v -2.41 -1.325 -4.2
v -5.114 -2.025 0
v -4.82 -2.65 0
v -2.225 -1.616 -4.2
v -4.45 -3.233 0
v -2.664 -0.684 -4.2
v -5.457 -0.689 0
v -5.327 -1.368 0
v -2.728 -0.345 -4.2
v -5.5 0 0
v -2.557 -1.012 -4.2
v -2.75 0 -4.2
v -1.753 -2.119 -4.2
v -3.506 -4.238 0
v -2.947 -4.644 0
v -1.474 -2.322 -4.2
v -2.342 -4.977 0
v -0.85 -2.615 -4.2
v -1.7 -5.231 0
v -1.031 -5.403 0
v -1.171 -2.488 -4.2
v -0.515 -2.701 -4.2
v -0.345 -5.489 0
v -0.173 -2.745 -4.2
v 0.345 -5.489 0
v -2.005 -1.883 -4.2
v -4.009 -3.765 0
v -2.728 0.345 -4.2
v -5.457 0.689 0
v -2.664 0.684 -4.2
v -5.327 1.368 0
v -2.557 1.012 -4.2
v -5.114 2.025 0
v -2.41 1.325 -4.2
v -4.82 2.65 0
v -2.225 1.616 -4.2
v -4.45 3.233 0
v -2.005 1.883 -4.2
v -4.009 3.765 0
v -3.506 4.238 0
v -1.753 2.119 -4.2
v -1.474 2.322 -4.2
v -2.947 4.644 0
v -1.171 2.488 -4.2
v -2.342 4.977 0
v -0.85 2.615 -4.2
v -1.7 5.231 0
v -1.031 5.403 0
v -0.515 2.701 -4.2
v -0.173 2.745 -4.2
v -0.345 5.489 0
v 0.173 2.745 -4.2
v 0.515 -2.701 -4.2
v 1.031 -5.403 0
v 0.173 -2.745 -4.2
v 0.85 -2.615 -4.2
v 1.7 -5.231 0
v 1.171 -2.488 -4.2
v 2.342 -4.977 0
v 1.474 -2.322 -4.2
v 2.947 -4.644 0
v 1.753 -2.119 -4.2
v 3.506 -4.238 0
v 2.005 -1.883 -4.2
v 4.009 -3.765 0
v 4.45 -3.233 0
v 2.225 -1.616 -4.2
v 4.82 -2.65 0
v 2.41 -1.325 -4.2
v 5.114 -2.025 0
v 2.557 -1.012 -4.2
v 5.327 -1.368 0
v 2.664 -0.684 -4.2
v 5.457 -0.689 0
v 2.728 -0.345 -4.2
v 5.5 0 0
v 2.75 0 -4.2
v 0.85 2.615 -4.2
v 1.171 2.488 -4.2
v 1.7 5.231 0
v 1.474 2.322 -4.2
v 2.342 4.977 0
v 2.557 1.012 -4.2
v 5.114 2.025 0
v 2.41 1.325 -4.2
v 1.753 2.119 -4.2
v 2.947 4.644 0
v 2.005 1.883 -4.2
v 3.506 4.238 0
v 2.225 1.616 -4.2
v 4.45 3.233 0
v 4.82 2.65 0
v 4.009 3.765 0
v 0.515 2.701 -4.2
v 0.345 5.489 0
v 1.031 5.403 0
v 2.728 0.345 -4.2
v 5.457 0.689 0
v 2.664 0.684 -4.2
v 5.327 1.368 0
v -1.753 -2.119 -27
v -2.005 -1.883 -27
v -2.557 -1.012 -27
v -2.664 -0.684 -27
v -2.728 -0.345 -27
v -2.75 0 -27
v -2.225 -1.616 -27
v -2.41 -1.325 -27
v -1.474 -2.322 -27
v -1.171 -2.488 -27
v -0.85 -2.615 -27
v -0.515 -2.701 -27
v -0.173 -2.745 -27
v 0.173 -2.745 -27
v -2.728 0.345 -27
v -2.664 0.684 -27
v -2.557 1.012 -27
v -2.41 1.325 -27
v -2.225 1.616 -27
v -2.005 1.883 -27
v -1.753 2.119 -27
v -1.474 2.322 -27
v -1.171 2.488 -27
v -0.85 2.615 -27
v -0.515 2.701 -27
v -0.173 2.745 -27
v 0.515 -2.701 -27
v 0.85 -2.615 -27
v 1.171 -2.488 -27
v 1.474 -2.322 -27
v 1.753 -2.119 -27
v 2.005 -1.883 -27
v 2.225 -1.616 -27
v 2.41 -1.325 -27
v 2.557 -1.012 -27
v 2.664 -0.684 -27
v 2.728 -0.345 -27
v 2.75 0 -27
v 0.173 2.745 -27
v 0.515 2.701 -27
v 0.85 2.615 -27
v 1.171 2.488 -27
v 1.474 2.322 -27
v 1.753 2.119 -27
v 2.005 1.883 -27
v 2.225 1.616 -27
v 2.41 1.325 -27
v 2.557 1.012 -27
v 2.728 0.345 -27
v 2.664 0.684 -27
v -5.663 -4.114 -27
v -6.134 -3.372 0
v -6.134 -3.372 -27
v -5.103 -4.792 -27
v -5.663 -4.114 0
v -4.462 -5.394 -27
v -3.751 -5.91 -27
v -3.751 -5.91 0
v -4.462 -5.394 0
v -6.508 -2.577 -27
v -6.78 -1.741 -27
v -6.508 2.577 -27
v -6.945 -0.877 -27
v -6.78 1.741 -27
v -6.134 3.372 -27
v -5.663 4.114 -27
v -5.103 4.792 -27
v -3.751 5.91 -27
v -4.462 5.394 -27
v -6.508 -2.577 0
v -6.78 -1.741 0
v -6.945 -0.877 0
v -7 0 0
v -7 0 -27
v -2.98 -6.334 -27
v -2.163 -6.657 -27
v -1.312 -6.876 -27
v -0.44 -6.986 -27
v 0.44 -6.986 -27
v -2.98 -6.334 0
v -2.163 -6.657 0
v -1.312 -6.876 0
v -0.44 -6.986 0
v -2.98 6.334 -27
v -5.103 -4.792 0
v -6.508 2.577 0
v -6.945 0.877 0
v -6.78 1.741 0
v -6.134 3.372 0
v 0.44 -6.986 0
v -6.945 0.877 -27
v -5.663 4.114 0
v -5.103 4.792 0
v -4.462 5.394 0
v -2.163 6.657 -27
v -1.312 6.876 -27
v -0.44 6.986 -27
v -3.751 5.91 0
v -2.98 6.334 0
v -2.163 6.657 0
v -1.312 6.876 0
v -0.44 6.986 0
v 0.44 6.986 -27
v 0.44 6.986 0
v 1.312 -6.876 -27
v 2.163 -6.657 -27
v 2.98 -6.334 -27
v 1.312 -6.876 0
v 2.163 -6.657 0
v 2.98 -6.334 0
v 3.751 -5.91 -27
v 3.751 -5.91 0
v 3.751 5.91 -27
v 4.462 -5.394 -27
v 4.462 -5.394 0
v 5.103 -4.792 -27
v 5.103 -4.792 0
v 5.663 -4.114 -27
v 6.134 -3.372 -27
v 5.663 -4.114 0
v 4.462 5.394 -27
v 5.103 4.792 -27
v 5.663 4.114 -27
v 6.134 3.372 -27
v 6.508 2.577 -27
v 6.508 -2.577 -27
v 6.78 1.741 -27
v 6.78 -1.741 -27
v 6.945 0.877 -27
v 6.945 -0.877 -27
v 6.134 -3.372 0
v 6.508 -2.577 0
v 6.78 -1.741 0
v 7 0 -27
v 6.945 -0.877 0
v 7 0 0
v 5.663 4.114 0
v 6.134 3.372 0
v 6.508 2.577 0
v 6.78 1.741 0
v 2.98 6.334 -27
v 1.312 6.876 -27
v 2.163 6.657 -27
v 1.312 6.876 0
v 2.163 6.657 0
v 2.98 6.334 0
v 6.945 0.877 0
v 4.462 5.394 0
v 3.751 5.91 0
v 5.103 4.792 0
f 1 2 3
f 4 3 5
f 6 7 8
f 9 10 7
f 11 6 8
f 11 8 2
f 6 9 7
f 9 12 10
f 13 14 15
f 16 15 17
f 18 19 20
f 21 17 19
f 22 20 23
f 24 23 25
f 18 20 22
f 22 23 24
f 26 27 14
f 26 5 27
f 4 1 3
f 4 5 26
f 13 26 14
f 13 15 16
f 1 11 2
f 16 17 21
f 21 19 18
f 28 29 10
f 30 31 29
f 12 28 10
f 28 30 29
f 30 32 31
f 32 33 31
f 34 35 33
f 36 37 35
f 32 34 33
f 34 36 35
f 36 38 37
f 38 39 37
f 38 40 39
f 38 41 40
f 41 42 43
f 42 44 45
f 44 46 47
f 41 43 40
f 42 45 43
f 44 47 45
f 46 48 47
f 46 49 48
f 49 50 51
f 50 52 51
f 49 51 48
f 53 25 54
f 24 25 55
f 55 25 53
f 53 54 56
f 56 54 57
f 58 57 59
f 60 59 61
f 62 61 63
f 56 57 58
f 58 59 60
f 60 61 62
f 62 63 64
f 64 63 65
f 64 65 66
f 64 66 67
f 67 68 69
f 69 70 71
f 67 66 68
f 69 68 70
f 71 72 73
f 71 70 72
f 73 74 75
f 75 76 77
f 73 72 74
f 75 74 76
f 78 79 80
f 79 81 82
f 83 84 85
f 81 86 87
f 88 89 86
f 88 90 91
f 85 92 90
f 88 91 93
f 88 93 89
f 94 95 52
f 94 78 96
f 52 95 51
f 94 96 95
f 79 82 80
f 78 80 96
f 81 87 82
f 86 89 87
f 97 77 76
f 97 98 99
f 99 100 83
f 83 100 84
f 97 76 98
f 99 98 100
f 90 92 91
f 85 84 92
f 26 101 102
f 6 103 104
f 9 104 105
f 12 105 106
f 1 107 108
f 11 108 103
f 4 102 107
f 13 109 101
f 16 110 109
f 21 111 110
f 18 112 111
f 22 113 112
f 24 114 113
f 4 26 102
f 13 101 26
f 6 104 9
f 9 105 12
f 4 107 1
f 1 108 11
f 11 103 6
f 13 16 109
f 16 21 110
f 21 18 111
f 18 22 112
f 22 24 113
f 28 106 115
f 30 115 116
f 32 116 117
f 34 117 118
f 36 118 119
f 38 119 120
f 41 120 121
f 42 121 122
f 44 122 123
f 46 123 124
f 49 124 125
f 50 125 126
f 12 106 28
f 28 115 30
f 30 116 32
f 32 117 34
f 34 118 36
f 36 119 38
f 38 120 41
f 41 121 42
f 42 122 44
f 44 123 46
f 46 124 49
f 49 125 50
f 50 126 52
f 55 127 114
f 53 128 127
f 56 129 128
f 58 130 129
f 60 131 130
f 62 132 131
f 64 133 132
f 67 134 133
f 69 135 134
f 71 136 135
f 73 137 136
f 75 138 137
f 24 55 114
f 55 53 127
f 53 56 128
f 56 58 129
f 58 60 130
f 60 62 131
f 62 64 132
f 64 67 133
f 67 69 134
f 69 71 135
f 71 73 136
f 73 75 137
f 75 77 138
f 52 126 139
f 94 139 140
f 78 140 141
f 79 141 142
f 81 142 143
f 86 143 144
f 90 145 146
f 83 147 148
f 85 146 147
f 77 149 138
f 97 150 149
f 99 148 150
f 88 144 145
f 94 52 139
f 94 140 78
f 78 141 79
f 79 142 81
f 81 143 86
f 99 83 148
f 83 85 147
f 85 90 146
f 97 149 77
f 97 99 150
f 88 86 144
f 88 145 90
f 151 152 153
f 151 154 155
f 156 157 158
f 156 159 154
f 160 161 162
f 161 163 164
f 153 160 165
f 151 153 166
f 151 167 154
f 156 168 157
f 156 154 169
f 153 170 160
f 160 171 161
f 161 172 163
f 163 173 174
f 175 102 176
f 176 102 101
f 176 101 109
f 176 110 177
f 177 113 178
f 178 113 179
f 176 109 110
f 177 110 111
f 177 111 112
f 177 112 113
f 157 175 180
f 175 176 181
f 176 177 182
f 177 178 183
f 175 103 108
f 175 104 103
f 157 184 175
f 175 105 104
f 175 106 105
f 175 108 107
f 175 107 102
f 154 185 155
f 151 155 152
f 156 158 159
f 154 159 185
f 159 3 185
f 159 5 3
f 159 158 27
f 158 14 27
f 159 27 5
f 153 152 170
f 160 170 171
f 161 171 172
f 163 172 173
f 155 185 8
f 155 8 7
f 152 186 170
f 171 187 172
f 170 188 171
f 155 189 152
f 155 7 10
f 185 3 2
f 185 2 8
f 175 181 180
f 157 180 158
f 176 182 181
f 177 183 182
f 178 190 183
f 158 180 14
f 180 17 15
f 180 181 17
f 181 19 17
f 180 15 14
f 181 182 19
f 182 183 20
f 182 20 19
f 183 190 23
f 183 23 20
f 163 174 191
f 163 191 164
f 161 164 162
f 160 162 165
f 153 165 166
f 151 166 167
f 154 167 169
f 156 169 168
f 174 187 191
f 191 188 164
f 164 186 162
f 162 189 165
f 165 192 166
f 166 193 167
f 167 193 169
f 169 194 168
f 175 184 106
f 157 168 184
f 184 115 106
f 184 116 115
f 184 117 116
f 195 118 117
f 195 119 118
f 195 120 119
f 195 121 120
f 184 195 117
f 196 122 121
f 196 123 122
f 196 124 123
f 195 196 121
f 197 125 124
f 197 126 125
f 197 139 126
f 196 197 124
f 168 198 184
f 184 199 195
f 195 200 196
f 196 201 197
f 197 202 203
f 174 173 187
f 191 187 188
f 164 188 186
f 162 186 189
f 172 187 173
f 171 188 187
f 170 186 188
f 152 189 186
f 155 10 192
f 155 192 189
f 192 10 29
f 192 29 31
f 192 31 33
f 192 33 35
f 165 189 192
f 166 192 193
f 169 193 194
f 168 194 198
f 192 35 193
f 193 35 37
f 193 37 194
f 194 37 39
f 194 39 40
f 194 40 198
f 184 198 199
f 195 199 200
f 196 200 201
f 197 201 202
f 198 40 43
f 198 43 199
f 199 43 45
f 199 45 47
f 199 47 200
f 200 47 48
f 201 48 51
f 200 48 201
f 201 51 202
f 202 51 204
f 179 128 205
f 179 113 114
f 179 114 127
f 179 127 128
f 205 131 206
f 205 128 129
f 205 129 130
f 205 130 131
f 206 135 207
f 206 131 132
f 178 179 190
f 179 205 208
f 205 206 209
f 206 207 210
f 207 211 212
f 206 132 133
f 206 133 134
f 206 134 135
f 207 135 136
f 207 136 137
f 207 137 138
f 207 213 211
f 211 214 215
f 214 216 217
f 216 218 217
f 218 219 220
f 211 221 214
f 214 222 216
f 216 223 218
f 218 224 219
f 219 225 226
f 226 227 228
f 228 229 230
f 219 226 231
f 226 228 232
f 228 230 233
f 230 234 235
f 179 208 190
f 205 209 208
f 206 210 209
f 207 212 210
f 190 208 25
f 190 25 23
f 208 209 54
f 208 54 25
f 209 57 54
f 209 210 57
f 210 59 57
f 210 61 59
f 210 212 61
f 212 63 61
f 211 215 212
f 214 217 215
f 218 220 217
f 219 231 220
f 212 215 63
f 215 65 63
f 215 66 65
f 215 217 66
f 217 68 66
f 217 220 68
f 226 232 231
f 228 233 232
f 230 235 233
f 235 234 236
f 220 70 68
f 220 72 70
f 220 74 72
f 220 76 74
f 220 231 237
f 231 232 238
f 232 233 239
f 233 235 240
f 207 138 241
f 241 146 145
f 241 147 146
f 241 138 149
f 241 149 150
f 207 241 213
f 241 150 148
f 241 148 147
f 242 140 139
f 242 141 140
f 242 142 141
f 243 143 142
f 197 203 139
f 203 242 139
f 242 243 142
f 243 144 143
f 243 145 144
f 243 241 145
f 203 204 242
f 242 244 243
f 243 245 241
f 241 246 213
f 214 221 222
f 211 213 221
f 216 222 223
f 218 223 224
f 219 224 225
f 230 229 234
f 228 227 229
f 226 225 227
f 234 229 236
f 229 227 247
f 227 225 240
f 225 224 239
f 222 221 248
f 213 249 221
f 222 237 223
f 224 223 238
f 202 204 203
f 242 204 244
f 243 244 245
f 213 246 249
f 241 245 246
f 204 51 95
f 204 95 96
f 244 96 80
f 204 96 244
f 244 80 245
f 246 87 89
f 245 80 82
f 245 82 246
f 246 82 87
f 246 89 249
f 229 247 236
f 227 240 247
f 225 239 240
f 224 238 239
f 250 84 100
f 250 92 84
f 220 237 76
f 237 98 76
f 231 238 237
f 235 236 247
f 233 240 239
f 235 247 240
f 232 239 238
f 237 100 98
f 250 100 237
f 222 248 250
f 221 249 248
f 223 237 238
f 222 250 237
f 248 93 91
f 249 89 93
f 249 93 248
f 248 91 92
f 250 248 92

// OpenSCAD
$fn = 50;

difference() {
	union() {
		translate(v = [0, 0, -27.0]) {
			cylinder(h = 27, r = 7.0);
		}
	}
	union() {
		translate(v = [0, 0, 0]) {
			rotate(a = [0, 0, 0]) {
				difference() {
					union() {
						translate(v = [0, 0, -30.0]) {
							cylinder(h = 30, r = 2.25);
						}
						translate(v = [0, 0, -4.2]) {
							cylinder(h = 4.2, r1 = 2.75, r2 = 5.5);
						}
						translate(v = [0, 0, -30.0]) {
							cylinder(h = 30, r = 2.75);
						}
						translate(v = [0, 0, -30.0]) {
							cylinder(h = 30, r = 2.25);
						}
					}
					union();
				}
			}
		}
	}
}
